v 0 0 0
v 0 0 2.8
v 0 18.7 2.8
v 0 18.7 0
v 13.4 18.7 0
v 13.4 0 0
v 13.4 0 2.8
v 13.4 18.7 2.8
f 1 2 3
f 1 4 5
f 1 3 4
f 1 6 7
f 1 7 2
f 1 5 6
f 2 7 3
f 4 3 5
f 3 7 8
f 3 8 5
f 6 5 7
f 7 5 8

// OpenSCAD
/* Warning, this is a very basic generator with a lot of approximation 
input data : [MODULE, 3BW, 13.4x18.7x2.8mm, 30, , D, C04-10055D]
generated by com.zoubworld.electronics.cad.model3d.Basic
Date : Sun Feb 15 10:50:49 CET 2026
*/

//body
color("black")
translate([0,0,0])
cube([13.4,18.7,2.8], center=false);
